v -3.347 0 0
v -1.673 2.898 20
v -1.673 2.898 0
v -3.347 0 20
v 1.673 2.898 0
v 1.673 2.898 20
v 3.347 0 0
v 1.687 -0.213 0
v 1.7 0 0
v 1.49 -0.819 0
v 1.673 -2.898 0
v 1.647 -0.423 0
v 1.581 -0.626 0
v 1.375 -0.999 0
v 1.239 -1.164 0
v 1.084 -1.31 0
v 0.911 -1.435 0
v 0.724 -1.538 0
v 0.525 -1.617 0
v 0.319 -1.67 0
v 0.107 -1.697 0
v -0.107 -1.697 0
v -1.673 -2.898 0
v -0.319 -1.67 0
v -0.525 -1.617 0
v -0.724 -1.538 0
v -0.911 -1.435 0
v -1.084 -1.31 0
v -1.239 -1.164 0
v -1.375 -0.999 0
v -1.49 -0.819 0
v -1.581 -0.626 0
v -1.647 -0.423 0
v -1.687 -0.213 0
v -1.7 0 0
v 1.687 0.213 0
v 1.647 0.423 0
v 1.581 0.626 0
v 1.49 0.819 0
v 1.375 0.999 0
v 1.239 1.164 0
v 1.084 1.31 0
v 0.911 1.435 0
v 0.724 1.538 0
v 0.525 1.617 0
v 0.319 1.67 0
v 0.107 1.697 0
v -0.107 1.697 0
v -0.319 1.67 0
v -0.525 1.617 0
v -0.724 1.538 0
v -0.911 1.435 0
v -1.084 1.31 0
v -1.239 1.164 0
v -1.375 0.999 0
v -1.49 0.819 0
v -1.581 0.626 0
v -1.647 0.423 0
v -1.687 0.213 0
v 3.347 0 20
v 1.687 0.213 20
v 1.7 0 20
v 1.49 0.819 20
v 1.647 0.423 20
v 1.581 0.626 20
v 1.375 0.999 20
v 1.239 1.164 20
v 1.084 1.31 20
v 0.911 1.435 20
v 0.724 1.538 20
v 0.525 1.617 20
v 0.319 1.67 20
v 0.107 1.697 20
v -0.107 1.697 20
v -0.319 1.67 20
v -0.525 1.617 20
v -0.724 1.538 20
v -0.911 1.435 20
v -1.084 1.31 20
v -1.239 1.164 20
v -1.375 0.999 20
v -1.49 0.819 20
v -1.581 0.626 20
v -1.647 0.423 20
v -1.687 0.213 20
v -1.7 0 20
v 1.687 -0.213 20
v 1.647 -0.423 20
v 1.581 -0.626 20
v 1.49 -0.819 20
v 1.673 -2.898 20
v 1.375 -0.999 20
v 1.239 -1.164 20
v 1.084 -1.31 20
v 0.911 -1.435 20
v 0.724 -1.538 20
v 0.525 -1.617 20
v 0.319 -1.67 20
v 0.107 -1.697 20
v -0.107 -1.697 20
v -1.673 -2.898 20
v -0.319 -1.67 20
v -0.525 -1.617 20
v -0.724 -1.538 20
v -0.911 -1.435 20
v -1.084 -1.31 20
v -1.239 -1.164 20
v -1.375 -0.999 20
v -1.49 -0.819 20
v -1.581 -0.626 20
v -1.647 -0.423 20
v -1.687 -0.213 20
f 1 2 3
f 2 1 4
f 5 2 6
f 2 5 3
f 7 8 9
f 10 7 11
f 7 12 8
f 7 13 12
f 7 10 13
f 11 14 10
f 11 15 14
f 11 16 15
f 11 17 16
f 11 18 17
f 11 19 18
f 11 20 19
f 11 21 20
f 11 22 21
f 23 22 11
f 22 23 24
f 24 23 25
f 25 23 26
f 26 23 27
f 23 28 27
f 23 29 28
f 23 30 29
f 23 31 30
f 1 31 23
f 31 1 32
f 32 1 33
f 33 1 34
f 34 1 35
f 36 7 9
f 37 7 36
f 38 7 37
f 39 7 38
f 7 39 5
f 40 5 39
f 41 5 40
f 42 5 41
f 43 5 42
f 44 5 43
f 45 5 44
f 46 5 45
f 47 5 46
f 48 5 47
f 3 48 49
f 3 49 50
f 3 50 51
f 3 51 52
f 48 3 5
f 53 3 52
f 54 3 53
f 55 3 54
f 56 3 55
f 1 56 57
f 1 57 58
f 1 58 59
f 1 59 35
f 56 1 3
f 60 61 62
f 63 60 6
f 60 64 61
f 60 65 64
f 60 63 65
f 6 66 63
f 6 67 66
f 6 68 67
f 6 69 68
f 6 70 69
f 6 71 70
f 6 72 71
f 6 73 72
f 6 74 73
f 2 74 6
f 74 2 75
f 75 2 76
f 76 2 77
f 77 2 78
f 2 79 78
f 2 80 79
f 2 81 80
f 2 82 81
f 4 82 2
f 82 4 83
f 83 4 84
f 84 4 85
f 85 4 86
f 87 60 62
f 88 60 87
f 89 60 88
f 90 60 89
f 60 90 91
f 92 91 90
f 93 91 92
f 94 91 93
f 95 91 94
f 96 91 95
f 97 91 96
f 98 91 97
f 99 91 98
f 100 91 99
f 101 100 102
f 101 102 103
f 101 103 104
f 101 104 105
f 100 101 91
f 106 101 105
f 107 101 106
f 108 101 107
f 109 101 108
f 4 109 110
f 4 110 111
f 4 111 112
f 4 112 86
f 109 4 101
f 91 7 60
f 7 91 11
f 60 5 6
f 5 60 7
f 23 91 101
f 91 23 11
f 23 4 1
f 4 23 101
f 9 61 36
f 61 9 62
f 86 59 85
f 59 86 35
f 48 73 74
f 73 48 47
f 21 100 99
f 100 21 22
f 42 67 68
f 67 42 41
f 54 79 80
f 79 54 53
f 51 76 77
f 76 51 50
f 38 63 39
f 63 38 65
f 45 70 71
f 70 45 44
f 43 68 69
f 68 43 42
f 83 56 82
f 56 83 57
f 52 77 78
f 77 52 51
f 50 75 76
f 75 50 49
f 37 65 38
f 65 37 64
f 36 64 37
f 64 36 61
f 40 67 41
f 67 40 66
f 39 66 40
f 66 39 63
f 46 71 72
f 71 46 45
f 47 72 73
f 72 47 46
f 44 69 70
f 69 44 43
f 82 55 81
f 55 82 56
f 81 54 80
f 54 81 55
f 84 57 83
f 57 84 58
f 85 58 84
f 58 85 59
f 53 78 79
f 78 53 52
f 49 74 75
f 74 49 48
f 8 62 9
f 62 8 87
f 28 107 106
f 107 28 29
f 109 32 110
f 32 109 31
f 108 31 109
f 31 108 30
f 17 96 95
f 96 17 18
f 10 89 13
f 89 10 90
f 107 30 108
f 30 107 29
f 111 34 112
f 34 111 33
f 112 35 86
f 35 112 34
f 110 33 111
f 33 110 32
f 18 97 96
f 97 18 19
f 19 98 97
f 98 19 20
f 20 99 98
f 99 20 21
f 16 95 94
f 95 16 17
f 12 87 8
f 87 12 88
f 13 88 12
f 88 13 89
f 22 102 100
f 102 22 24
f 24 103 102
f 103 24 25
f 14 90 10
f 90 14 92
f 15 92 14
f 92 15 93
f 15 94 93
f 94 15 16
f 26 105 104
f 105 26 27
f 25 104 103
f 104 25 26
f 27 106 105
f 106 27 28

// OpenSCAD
$fn = 50;


difference() {
	union() {
		translate(v = [0, 0, 0]) {
			rotate(a = [0, 0, 0]) {
				translate(v = [0, 0, 0]) {
					rotate(a = [0, 0, 0]) {
						linear_extrude(height = 20) {
							polygon(points = [[3.3466000000, 0.0000000000], [1.6733000000, 2.8982406163], [-1.6733000000, 2.8982406163], [-3.3466000000, 0.0000000000], [-1.6733000000, -2.8982406163], [1.6733000000, -2.8982406163]]);
						}
					}
				}
			}
		}
	}
	union() {
		translate(v = [0, 0, 0]) {
			rotate(a = [0, 0, 0]) {
				cylinder(h = 20, r = 1.7000000000);
			}
		}
	}
}
